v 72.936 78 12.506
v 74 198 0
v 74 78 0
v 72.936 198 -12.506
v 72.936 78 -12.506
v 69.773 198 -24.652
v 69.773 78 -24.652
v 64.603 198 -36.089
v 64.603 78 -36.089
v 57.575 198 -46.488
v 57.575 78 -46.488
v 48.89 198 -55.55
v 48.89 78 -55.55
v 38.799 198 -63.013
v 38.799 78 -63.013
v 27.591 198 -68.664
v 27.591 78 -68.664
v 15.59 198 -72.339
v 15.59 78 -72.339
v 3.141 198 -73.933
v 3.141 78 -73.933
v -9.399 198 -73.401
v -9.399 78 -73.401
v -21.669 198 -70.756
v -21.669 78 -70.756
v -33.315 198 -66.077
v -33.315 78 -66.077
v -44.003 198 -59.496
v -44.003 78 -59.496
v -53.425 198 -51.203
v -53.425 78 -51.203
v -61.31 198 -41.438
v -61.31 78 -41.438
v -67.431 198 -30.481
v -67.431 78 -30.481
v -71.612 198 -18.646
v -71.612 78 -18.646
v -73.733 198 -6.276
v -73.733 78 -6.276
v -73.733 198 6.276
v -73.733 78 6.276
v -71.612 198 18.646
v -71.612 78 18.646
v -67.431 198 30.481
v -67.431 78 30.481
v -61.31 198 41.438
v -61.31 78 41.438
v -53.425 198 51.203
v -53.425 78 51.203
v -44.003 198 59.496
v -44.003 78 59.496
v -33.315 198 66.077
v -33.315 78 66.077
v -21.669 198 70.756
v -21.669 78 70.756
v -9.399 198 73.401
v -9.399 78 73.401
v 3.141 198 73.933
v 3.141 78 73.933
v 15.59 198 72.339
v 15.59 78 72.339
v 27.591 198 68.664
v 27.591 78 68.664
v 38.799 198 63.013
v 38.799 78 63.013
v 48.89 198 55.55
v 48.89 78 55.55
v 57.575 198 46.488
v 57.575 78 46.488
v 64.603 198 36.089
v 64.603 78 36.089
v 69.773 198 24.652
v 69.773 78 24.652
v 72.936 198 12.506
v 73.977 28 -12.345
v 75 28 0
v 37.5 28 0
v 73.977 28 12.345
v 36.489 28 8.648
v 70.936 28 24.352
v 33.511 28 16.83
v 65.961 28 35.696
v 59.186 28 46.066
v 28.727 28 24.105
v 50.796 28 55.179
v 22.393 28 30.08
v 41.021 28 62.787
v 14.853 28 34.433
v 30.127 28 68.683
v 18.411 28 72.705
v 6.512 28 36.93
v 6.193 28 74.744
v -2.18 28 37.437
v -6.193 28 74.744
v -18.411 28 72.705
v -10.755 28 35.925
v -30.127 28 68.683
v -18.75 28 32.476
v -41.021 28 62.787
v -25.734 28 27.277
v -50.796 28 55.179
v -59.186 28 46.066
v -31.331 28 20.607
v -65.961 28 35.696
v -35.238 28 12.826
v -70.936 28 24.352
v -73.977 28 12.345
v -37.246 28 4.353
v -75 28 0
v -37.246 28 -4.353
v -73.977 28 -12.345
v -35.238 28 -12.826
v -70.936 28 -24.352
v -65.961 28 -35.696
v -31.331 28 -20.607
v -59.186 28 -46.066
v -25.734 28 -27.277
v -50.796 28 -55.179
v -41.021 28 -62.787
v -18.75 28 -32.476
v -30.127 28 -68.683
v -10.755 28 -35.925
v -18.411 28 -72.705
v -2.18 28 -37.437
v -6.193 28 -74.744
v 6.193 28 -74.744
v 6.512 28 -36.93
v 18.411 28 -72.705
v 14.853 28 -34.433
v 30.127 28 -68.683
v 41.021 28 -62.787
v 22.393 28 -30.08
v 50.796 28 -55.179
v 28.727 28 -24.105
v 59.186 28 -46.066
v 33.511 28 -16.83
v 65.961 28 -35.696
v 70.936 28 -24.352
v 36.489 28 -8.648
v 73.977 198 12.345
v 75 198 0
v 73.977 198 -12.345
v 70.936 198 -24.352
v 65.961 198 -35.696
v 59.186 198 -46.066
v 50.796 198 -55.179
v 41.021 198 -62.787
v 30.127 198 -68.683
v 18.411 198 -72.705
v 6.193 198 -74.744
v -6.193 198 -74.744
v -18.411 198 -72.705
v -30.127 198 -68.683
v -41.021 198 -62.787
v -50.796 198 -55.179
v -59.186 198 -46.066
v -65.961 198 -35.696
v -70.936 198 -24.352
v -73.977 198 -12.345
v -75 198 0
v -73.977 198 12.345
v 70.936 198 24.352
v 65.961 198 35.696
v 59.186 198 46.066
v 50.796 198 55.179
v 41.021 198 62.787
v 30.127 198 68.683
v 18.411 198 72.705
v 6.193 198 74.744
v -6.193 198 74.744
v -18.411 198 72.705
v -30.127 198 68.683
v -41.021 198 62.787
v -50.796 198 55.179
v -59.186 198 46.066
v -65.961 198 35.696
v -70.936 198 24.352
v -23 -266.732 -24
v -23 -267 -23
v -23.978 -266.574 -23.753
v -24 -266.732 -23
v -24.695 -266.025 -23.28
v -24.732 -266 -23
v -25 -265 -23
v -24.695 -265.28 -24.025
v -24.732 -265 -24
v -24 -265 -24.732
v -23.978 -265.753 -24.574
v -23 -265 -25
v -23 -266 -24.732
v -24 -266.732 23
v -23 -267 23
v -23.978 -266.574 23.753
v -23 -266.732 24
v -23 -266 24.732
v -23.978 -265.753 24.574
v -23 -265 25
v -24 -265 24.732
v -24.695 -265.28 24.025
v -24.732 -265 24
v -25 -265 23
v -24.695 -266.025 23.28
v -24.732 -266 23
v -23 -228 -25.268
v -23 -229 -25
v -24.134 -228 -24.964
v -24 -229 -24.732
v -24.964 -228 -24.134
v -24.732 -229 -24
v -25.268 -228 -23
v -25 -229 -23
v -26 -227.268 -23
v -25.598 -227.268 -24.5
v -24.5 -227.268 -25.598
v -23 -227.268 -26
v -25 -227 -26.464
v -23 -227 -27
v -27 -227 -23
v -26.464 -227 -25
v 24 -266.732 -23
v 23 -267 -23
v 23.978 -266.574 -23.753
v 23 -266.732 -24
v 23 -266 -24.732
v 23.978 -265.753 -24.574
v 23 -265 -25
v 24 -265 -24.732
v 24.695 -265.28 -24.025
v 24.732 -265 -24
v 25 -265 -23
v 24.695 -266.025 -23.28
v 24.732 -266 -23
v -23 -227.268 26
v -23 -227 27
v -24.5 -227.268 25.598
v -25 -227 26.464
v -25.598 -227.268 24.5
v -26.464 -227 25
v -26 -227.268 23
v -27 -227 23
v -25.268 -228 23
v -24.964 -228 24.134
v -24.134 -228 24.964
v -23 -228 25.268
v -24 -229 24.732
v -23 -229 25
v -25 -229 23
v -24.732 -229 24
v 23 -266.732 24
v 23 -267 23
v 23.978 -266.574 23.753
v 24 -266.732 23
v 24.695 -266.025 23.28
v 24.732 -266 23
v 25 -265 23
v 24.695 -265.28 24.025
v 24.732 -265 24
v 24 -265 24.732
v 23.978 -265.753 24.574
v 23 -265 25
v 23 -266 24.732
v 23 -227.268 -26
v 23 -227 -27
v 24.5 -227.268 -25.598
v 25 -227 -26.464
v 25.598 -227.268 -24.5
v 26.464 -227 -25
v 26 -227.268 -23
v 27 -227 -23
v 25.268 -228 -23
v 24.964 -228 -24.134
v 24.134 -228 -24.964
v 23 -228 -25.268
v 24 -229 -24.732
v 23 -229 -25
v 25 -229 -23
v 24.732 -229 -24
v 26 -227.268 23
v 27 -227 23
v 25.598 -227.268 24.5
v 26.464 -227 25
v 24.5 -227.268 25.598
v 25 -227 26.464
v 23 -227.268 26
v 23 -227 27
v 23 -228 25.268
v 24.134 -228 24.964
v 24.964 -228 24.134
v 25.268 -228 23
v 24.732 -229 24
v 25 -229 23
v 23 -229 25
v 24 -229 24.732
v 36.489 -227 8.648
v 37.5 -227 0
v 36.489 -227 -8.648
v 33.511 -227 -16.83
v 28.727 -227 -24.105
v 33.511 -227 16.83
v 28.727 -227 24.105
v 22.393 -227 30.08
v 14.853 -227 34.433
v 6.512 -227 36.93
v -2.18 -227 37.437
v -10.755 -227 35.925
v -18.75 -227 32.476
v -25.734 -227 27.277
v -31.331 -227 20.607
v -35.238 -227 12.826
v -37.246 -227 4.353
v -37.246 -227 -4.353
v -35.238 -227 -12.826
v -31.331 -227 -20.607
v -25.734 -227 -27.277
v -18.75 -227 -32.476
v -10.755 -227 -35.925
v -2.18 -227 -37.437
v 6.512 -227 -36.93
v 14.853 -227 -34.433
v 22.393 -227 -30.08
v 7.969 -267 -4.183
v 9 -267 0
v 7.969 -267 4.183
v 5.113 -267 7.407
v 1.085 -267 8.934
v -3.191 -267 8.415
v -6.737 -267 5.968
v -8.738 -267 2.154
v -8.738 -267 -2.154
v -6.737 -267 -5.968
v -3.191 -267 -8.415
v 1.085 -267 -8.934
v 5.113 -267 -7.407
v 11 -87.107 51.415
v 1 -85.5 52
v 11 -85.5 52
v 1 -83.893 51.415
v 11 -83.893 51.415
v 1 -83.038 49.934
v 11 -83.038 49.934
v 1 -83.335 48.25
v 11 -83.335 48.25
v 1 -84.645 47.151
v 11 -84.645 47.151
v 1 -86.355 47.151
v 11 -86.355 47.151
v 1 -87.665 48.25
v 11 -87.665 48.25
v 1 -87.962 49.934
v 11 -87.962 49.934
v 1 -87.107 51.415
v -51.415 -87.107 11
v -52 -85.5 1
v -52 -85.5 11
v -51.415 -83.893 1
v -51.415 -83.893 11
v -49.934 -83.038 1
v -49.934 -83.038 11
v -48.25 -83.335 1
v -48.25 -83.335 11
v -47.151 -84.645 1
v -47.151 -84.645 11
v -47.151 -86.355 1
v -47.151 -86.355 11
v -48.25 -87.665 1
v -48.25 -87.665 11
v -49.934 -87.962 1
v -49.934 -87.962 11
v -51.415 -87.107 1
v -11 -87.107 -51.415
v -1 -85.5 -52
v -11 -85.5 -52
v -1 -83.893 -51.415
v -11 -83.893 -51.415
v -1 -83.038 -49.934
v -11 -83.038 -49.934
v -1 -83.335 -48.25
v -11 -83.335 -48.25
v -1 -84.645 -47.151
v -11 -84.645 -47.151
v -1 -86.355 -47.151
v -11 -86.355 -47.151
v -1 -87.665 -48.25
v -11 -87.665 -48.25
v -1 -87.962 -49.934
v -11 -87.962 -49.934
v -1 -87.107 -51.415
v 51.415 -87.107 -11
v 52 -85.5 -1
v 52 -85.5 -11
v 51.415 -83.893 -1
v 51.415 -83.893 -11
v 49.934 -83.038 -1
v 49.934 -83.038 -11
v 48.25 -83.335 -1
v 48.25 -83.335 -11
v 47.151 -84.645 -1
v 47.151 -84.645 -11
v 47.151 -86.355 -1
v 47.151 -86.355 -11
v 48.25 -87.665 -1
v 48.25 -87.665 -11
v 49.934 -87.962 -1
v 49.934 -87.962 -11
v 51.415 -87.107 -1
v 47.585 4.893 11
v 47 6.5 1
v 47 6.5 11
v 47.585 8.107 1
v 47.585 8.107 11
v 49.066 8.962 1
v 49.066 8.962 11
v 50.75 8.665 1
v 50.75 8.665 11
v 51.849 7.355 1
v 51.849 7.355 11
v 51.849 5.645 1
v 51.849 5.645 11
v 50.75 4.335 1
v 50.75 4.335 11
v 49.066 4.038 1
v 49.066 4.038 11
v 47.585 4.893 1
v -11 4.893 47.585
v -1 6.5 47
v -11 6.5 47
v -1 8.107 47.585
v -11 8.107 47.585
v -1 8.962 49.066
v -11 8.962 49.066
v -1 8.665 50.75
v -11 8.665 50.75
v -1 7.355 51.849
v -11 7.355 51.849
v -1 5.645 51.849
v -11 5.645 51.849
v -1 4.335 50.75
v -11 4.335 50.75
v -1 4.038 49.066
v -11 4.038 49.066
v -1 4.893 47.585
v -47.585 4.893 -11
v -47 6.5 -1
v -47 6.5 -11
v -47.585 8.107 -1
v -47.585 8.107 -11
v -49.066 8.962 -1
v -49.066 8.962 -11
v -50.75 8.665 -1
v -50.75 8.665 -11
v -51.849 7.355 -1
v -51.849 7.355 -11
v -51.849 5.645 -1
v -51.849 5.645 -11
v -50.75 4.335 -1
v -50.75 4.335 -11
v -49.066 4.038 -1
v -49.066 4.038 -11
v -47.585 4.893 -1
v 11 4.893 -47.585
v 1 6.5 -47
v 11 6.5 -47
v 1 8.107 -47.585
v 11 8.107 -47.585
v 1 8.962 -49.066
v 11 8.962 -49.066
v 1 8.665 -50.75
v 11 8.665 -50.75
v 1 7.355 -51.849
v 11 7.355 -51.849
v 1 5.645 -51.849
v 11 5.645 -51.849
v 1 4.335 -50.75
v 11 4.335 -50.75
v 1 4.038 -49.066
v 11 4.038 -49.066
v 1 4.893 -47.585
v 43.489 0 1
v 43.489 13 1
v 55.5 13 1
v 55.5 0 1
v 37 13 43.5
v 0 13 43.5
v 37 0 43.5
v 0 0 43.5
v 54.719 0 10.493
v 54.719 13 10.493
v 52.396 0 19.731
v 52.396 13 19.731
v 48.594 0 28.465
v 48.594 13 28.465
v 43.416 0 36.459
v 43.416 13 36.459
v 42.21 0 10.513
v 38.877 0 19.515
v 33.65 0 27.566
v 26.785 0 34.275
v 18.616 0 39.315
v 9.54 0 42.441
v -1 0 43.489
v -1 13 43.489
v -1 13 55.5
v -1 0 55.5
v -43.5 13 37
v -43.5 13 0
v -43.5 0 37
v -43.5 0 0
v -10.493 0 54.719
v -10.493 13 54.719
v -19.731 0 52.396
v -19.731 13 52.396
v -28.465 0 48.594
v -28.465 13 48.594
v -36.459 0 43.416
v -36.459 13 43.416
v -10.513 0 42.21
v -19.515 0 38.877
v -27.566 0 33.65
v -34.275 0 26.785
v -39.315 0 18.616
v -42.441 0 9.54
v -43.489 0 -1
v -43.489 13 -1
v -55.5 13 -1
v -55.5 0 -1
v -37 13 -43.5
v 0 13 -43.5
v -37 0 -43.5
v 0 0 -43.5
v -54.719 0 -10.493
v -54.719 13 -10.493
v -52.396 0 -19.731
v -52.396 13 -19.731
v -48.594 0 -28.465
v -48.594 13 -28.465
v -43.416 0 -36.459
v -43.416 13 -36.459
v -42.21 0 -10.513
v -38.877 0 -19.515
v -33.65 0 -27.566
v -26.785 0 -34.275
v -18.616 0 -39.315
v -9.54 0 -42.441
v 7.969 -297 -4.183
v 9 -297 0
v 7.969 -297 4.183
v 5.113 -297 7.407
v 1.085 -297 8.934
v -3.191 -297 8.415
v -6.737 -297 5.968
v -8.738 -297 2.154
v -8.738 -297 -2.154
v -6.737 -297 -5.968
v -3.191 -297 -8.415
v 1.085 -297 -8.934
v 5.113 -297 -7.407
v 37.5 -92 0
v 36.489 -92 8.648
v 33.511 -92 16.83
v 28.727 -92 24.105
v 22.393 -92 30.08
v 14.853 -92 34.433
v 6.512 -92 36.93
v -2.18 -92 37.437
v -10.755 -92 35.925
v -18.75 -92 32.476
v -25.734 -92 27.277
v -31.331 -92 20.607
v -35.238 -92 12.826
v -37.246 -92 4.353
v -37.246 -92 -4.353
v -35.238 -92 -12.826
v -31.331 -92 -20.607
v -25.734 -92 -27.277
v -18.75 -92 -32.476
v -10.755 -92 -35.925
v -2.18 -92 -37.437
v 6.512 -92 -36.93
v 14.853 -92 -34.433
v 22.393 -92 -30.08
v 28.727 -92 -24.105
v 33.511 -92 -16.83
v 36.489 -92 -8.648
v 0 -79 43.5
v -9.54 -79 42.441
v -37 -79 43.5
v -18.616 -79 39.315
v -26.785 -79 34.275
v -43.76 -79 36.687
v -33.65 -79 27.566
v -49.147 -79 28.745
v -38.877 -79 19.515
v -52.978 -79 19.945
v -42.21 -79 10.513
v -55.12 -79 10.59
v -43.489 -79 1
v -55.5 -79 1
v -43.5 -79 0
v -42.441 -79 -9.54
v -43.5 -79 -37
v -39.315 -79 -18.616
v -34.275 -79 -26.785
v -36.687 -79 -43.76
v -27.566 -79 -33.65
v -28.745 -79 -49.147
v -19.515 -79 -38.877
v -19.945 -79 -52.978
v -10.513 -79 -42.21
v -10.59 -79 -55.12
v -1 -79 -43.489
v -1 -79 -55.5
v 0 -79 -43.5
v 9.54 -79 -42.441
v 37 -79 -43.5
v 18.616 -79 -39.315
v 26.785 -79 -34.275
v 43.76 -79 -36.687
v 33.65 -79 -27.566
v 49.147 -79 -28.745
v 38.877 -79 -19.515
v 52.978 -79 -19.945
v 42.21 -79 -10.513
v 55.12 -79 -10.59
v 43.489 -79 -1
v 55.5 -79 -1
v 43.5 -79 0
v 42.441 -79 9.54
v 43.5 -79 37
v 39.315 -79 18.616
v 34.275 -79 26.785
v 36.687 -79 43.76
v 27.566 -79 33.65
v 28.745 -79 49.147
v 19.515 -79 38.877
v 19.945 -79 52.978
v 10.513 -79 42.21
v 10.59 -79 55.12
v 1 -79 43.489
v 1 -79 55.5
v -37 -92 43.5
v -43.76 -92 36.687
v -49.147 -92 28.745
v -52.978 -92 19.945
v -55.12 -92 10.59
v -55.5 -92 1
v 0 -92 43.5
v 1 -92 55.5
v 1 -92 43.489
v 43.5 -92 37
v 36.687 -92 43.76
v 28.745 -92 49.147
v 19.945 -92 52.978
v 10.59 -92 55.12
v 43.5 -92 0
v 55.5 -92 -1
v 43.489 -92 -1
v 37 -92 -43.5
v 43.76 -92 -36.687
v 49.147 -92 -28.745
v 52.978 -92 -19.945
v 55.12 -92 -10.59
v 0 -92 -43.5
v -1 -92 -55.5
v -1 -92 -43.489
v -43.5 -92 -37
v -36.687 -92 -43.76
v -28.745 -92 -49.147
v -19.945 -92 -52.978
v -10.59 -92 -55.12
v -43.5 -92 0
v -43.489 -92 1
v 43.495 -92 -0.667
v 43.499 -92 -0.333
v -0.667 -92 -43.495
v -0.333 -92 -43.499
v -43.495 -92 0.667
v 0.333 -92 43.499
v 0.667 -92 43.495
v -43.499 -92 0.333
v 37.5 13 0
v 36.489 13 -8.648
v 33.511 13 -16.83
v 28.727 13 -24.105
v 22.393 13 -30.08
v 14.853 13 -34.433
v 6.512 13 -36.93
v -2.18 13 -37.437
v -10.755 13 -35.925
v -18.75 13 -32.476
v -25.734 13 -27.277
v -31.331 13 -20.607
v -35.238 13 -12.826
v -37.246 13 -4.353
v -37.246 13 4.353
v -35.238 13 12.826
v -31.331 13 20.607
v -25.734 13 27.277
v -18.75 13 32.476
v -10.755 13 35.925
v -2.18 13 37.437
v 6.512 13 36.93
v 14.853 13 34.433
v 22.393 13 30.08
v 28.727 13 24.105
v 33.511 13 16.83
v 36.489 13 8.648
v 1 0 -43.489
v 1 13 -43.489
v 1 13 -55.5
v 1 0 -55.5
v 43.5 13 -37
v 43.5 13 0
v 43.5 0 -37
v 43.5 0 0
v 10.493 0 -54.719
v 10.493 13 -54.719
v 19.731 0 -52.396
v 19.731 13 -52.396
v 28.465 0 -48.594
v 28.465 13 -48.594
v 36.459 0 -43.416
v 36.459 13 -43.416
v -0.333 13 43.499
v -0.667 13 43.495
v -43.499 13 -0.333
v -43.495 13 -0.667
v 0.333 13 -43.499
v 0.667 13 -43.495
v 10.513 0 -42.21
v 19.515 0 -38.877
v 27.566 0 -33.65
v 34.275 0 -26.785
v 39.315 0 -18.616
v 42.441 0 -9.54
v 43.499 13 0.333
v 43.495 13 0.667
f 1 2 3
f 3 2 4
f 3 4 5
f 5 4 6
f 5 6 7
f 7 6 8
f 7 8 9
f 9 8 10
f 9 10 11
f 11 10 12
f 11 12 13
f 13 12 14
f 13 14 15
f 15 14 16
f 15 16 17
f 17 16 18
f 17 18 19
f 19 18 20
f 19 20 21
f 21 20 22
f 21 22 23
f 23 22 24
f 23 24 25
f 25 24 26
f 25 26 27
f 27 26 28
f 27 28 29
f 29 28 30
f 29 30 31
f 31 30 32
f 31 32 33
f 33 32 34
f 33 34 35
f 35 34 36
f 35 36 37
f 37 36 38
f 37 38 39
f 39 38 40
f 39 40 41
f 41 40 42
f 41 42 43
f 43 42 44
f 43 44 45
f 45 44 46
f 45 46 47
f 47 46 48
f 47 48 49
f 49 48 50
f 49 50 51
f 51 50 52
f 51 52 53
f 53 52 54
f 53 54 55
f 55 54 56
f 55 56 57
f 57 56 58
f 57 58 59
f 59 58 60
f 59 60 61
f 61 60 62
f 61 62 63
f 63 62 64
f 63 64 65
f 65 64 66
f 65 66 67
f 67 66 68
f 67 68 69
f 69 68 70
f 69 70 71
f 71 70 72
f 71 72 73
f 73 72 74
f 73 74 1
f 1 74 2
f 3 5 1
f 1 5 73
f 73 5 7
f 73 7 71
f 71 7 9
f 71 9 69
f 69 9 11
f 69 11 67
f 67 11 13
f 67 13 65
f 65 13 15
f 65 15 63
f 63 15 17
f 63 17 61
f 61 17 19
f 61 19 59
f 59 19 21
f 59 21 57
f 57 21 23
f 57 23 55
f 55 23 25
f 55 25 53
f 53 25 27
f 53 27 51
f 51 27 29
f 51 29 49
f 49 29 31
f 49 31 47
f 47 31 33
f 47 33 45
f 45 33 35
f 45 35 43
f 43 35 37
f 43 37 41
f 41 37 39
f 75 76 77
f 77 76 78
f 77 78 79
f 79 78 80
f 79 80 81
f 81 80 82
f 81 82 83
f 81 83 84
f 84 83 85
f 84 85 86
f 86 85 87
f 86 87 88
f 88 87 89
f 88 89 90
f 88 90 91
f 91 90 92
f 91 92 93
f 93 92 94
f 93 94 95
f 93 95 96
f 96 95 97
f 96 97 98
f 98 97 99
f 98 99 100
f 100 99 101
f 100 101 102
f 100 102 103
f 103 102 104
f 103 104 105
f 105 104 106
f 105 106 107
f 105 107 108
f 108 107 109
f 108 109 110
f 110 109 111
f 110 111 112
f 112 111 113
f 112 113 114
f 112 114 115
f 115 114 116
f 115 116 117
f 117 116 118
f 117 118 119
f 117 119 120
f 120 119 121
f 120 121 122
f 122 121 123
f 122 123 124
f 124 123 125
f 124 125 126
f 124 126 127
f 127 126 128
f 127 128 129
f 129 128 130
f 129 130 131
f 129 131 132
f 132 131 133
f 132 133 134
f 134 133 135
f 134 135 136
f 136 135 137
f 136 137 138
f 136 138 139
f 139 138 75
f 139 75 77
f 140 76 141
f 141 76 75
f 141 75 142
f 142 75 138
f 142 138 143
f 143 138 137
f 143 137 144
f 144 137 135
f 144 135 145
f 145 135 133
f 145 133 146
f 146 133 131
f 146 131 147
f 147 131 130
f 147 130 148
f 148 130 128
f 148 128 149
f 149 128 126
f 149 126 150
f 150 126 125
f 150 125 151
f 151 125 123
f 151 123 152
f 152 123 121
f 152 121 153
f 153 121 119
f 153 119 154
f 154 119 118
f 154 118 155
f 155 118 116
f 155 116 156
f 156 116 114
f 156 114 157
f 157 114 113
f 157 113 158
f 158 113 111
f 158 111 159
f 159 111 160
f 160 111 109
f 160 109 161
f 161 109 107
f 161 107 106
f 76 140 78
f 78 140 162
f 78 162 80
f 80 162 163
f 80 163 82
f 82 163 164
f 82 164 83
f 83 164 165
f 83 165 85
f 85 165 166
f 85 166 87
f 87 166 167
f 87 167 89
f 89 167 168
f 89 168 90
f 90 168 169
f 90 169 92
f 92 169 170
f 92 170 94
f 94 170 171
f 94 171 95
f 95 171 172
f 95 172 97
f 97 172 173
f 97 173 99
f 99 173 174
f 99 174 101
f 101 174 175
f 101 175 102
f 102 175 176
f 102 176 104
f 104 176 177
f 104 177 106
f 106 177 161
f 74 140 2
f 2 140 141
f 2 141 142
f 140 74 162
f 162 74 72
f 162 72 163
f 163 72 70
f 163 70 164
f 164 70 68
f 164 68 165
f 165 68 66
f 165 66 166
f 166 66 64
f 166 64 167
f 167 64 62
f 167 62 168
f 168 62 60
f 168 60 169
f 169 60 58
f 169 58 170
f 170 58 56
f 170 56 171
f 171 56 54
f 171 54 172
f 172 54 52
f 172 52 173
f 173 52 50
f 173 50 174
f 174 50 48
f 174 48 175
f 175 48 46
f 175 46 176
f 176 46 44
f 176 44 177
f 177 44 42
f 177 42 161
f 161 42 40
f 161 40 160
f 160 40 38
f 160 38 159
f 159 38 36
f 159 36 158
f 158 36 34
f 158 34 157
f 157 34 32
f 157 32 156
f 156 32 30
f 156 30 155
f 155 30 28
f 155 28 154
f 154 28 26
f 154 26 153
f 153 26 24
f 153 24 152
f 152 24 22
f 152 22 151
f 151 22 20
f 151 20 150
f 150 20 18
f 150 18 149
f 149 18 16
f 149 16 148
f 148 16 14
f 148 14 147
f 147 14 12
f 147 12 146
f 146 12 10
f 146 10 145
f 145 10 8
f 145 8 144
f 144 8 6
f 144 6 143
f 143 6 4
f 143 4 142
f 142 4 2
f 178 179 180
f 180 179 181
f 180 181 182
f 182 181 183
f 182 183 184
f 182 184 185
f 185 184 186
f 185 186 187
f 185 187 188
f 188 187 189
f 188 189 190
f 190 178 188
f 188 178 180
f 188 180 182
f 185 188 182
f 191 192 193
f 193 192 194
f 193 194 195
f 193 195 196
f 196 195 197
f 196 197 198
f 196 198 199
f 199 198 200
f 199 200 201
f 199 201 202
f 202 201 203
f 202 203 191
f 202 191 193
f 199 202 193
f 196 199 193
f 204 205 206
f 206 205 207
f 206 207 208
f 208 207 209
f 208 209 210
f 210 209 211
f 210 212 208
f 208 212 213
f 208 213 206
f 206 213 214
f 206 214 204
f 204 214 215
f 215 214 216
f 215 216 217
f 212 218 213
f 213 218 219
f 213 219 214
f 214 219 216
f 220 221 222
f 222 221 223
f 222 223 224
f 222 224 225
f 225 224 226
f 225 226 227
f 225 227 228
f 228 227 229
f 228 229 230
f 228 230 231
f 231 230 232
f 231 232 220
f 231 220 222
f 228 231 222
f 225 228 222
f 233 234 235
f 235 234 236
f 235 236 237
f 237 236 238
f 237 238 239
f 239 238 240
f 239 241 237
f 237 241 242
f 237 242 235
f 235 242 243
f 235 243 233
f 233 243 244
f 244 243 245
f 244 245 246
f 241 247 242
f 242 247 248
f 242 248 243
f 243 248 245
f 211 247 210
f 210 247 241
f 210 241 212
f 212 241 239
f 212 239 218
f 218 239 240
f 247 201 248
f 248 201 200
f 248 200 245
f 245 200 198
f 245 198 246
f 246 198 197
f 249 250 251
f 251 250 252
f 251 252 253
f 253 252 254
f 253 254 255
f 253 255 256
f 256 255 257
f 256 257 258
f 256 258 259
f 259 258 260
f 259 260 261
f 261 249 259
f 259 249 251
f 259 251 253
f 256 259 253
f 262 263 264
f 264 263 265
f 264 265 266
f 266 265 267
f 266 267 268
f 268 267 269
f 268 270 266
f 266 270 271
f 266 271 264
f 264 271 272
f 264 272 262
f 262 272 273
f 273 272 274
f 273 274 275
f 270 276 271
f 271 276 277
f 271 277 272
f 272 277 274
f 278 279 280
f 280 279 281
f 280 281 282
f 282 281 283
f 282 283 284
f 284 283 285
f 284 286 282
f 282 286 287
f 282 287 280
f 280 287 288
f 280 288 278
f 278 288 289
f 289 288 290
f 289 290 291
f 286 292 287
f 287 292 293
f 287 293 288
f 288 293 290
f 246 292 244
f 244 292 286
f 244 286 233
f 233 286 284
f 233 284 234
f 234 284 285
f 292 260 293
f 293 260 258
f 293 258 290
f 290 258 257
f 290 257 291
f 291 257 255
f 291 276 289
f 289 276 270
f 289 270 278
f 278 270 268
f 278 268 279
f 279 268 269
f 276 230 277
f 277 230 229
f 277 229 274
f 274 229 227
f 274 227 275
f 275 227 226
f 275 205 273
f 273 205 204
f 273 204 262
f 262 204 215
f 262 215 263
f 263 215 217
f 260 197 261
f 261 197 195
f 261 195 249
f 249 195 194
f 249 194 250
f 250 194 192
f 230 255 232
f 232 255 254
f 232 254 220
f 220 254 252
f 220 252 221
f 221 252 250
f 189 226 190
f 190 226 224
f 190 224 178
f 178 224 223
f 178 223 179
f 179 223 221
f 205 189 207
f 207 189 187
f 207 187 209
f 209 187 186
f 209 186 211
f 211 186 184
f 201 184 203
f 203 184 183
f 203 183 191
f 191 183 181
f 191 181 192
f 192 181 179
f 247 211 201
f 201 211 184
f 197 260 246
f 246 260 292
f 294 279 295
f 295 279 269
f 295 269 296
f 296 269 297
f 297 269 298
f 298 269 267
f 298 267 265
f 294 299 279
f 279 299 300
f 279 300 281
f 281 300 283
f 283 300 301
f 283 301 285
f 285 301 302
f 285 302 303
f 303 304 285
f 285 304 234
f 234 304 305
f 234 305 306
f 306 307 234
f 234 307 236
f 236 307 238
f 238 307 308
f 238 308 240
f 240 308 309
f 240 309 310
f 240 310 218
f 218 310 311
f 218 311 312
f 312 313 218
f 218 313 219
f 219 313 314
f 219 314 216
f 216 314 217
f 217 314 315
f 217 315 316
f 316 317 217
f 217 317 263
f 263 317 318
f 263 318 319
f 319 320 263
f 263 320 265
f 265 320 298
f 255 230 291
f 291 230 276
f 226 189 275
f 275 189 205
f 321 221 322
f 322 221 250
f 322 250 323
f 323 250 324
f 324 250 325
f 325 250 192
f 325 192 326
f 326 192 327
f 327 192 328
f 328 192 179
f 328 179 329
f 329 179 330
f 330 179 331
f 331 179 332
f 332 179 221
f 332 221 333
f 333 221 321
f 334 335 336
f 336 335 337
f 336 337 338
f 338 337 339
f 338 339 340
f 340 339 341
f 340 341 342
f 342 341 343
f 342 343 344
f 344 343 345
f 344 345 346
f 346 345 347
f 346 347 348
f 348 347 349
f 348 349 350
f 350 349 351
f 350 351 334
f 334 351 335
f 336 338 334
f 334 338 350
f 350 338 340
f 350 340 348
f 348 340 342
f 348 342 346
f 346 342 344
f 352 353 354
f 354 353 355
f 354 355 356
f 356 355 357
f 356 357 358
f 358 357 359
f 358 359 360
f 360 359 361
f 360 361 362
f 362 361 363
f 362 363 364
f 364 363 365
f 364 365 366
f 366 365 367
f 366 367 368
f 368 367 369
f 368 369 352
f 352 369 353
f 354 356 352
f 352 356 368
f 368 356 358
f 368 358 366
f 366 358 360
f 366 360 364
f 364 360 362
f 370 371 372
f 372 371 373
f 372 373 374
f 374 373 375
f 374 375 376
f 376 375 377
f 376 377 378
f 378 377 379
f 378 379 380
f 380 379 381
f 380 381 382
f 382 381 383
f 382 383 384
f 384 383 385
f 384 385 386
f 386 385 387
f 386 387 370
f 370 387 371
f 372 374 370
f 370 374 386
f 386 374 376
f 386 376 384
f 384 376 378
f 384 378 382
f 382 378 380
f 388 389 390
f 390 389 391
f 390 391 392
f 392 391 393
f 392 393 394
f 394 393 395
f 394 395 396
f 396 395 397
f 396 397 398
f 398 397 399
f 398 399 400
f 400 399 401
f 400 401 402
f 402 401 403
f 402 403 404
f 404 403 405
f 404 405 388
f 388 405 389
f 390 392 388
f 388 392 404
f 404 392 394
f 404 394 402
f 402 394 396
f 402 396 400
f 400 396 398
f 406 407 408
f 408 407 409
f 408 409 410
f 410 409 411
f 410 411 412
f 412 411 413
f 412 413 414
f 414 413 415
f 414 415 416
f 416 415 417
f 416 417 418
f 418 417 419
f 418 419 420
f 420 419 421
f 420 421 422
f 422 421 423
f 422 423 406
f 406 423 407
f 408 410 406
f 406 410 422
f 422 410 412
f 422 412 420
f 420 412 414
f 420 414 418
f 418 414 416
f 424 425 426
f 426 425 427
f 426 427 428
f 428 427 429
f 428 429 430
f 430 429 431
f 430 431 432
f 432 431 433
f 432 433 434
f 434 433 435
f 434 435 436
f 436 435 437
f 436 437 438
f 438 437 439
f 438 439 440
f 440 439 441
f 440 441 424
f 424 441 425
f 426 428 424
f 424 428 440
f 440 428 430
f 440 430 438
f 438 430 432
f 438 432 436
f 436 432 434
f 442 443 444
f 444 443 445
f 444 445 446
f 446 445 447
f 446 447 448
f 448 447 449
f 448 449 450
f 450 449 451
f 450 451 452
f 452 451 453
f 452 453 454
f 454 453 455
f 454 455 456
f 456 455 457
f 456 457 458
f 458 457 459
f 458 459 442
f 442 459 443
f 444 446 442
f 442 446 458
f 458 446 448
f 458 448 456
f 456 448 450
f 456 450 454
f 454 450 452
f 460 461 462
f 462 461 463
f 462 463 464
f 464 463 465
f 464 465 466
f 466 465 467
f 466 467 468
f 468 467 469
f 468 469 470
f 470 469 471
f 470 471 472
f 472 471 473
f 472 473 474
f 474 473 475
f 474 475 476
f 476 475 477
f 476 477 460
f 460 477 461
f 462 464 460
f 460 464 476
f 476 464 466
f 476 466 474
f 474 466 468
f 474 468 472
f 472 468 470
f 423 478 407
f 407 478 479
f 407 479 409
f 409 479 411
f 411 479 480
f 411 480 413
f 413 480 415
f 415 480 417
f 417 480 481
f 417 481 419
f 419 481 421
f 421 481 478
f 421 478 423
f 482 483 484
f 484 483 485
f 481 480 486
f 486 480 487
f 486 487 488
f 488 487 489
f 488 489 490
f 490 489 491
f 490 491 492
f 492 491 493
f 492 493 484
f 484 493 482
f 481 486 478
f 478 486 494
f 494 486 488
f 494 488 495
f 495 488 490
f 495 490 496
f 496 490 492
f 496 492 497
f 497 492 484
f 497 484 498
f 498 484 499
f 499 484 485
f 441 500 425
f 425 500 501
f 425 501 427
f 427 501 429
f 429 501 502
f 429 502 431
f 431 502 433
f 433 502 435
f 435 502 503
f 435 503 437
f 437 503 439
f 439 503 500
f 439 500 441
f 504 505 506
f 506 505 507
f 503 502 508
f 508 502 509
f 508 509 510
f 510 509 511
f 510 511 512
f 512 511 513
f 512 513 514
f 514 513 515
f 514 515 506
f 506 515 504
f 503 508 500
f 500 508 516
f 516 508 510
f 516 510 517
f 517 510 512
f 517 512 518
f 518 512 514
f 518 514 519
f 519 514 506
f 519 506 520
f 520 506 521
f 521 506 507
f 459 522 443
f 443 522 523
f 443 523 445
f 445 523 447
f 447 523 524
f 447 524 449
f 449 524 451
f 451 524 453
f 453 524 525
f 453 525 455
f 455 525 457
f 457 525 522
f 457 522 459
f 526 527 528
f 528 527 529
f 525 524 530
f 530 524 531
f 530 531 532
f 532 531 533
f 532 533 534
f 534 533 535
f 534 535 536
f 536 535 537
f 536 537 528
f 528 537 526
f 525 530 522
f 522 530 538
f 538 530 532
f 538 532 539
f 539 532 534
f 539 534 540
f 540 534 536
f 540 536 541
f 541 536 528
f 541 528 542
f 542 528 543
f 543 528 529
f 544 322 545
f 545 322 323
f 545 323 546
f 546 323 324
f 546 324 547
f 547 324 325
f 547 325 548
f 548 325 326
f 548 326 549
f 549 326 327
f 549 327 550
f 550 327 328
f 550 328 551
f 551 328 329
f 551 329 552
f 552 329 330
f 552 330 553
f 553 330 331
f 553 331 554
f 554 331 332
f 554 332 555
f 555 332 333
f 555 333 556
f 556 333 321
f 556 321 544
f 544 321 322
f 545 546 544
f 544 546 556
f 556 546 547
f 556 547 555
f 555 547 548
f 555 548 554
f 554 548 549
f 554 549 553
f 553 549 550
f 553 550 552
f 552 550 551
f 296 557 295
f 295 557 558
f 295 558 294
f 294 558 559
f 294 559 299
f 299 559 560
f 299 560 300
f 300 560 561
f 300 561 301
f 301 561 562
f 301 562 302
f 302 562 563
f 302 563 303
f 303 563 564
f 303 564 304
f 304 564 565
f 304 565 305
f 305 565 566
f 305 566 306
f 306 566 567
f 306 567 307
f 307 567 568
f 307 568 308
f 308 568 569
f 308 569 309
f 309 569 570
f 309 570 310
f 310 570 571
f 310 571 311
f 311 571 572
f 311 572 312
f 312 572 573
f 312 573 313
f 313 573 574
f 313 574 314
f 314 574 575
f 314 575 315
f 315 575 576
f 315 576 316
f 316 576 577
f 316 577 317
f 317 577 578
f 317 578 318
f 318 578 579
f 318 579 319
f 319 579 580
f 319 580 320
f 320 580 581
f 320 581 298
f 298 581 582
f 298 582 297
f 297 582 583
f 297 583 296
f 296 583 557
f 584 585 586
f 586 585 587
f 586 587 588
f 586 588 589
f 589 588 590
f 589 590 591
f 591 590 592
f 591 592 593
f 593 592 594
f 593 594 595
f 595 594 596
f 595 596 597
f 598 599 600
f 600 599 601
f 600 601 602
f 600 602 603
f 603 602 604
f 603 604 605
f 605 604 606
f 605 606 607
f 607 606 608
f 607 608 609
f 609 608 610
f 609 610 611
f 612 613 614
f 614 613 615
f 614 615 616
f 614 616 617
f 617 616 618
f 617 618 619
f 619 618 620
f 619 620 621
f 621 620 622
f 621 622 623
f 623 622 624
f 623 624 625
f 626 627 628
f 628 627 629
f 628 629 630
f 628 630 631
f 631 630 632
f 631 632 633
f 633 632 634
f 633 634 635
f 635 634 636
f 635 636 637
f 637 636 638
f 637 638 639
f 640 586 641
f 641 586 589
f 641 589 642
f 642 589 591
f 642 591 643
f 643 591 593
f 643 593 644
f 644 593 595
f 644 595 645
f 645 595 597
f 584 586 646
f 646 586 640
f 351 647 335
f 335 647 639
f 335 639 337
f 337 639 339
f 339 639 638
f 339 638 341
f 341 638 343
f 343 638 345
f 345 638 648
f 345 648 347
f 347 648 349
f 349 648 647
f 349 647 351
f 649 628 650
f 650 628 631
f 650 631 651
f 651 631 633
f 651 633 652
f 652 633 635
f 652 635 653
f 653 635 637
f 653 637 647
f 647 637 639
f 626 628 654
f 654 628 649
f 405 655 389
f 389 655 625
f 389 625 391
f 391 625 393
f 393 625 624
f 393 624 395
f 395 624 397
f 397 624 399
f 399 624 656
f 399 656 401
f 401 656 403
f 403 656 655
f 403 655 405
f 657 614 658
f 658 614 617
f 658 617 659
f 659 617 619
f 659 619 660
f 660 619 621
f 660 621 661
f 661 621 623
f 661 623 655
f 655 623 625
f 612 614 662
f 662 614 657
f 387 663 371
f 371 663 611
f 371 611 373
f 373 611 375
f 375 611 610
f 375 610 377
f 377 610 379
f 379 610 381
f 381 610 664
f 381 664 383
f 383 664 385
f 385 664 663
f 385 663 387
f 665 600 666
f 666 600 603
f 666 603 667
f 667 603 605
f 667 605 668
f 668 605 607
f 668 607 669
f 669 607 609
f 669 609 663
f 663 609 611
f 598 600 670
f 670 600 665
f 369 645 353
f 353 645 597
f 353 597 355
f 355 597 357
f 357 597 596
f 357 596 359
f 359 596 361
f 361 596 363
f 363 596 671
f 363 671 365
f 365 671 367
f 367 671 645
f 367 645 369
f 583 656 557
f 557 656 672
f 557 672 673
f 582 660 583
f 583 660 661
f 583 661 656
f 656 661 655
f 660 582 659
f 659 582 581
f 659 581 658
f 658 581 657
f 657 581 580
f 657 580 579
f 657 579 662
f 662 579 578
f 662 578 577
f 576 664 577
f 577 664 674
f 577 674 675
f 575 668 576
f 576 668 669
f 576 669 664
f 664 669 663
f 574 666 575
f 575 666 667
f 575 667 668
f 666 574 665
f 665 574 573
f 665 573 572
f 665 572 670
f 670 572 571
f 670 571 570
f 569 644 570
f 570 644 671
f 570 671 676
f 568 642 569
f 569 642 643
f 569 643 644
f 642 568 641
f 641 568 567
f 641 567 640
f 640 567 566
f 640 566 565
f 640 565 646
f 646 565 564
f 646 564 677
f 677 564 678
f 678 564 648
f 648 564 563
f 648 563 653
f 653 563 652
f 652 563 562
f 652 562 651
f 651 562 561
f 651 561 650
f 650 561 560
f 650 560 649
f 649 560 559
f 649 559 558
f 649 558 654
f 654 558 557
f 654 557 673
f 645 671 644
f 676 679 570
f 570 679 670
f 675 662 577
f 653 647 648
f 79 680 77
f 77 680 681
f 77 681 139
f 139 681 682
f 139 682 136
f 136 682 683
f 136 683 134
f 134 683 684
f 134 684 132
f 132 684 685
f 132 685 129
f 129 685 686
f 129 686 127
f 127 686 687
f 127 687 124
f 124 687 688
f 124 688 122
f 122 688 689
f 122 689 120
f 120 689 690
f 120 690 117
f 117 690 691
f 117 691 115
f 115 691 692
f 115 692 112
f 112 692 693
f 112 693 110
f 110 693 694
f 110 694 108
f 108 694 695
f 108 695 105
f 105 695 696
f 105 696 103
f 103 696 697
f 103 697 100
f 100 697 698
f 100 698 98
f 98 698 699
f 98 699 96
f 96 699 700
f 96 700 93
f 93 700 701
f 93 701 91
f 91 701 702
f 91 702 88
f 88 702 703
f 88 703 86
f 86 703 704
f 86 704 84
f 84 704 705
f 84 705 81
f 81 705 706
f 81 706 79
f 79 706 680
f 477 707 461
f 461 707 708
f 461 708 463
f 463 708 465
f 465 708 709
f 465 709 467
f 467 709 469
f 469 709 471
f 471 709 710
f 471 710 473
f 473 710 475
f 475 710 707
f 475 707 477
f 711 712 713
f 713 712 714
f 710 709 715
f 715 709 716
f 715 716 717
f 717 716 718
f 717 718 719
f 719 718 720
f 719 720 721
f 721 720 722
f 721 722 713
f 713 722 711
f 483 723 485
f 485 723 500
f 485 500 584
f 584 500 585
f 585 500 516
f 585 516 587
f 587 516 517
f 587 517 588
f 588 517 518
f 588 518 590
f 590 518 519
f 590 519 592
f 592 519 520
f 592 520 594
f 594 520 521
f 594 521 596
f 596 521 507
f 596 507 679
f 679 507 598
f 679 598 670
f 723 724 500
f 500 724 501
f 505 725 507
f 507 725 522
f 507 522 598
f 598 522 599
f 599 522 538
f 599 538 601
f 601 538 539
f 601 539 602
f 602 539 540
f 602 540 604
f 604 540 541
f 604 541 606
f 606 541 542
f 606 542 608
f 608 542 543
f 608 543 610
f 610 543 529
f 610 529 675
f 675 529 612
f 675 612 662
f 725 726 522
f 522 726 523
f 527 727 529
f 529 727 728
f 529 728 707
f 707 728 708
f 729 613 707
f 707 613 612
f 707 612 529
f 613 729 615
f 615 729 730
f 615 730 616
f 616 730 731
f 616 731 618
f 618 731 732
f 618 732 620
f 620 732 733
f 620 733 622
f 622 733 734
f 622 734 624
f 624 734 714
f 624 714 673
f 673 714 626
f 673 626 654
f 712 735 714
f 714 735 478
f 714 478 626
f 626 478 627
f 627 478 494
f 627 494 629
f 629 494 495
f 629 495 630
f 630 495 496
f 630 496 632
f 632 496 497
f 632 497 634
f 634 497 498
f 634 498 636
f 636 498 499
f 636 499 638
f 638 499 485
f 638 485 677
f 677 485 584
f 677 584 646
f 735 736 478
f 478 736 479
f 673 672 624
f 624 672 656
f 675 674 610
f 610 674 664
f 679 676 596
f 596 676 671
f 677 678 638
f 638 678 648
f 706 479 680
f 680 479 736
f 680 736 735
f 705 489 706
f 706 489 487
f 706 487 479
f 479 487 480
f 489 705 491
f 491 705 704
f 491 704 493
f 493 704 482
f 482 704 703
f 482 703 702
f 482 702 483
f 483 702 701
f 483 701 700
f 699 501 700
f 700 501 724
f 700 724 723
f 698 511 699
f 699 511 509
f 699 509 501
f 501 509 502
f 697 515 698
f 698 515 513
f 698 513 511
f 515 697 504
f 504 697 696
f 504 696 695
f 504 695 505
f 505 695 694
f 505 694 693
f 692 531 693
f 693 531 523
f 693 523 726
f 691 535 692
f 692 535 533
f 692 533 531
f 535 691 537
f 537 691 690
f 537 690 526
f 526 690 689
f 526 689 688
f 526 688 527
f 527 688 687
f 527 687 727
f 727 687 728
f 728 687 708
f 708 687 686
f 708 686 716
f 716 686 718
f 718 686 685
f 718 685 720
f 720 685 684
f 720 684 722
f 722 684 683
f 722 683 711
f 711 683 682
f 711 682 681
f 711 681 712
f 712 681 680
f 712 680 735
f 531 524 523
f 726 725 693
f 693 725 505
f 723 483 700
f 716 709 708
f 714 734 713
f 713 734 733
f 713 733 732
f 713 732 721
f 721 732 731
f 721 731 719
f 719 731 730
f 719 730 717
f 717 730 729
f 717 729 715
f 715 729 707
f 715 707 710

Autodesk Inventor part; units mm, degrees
ref_plane "YZ Plane" through (0, 0, 0) normal (1, 0, 0) x (0, 1, 0)
ref_plane "XZ Plane" through (0, 0, 0) normal (0, 1, 0) x (-1, 0, 0)
ref_plane "XY Plane" through (0, 0, 0) normal (0, 0, 1) x (1, 0, 0)
sketch "Sketch1" plane through (0, 0, 0) normal (0, 1, 0) x (-1, 0, 0)
  circle A0 centre (0, 0) radius 43.5
  dimension "d0" = 87
extrude "Extrusion1" add sketch "Sketch1" along normal blind 13
sketch "Sketch2" plane through (0, 13, 0) normal (0, 1, 0) x (1, 0, 0)
  circle A0 centre (0, 0) radius 43.5 projected
  line L0 (0, 55.4914) -> (0, 55.5)
  circle A1 centre (0, 0) radius 43.5 projected
  line L1 (43.5, 0) -> (43.5, 37)
  line L2 (0, 55.5) -> (1, 55.5)
  line L3 (1, 55.5) -> (1, 43.5)
  line L4 (0, 55.4914) -> (0, 55.5)
  arc A2 (43.5, 37) -> (1, 55.5) centre (1, -2.5676) ccw
  line L5 (1, 43.4885) -> (1, 43.5)
  line L6 (-55.5, 1) -> (-43.5, 1)
  arc A3 (-37, 43.5) -> (-55.5, 1) centre (2.5676, 1) ccw
  line L7 (0, 43.5) -> (-37, 43.5)
  line L8 (-1, -55.5) -> (-1, -43.5)
  arc A4 (-43.5, -37) -> (-1, -55.5) centre (-1, 2.5676) ccw
  line L9 (-43.5, 0) -> (-43.5, -37)
  line L10 (55.5, -1) -> (43.5, -1)
  arc A5 (37, -43.5) -> (55.5, -1) centre (-2.5676, -1) ccw
  line L11 (0, -43.5) -> (37, -43.5)
  point P0 (0, 43.5)
  point P1 (43.5, 0)
  point P2 (-55.4914, 0)
  point P3 (0, -55.4914)
  point P4 (55.4914, 0)
  dimension "d3" = 12
  dimension "d75" = 1
  dimension "d91" = 37
  dimension "d92" = 58.0676
  dimension "d93" = 42.5
  dimension "d94" = 0
  dimension "d95" = 87.5
  dimension "d110" = 360
extrude "Extrusion2" add sketch "Sketch2" against normal blind 13 contours A0 L5 L3 A2 L1
sketch "Sketch6" plane through (0, 0, 0) normal (0, -1, 0) x (1, 0, 0)
  circle A0 centre (0, 0) radius 43.5
  point P0 (0, 43.5)
sketch "Sketch17" plane through (0, 13, 0) normal (0, 1, 0) x (1, 0, 0)
  circle A0 centre (0, 0) radius 25
  dimension "d141" = 50
extrude "Extrusion16" add sketch "Sketch17" along normal blind 2
sketch "Sketch7" plane through (0, 13, 0) normal (0, 1, 0) x (1, 0, 0)
  circle A0 centre (0, 0) radius 37.5
  dimension "d23" = 75
extrude "Extrusion5" add sketch "Sketch7" along normal blind 15
extrude "Extrusion6" add sketch "Sketch6" along normal blind 79
sketch "Sketch8" plane through (0, -79, 0) normal (0, -1, 0) x (1, 0, 0)
  line L0 (0, -43.5) -> (0, -55.5) projected
  line L1 (0, -43.4937) -> (0, -55.5)
  line L2 (43.4937, 0) -> (55.5, 0)
  line L3 (0, 43.4937) -> (0, 55.5)
  line L4 (-43.4937, 0) -> (-55.5, 0)
  line L5 (-55.5, -2) -> (-43.5, -2)
  circle A0 centre (0, 0) radius 43.5
  line L6 (-43.5, 0) -> (-55.5, 0) projected
  line L7 (-55.5, 0) -> (-55.5, -2)
  line L8 (-43.5, 0) -> (-43.5, -37)
  circle A1 centre (0, 0) radius 43.5 projected
  line L9 (-55.5, 0) -> (-55.5, 1)
  line L10 (-55.5, 1) -> (-43.4885, 1)
  line L11 (0, -43.5) -> (37, -43.5)
  line L12 (-1, -55.5) -> (-1, -43.4885)
  line L13 (2, -55.5) -> (2, -43.5)
  line L14 (0, -55.5) -> (2, -55.5)
  line L15 (0, -55.5) -> (-1, -55.5)
  circle A2 centre (0, 0) radius 43.5
  line L16 (43.5, 0) -> (43.5, 37)
  line L17 (55.5, -1) -> (43.4885, -1)
  line L18 (55.5, 2) -> (43.5, 2)
  line L19 (55.5, 0) -> (55.5, 2)
  line L20 (55.5, 0) -> (55.5, -1)
  circle A3 centre (0, 0) radius 43.5
  line L21 (0, 43.5) -> (-37, 43.5)
  line L22 (1, 55.5) -> (1, 43.4885)
  line L23 (-2, 55.5) -> (-2, 43.5)
  line L24 (0, 55.5) -> (-2, 55.5)
  line L25 (0, 55.5) -> (1, 55.5)
  circle A4 centre (0, 0) radius 43.5
  line L26 (-2, -43.5) -> (-37, -43.5) projected
  arc A5 (-43.5, -37) -> (-1, -55.5) centre (-3.75, -3.75) ccw
  arc A6 (37, -43.5) -> (55.5, -1) centre (3.75, -3.75) ccw
  line L27 (0, -43.5) -> (37, -43.5)
  line L28 (2, -55.5) -> (2, -43.5)
  line L29 (-1, -55.5) -> (-1, -43.4885)
  line L30 (0, -55.5) -> (2, -55.5)
  arc A7 (43.5, 37) -> (1, 55.5) centre (3.75, 3.75) ccw
  line L31 (43.5, 0) -> (43.5, 37)
  line L32 (55.5, 2) -> (43.5, 2)
  line L33 (55.5, -1) -> (43.4885, -1)
  line L34 (55.5, 0) -> (55.5, 2)
  arc A8 (-37, 43.5) -> (-55.5, 1) centre (-3.75, 3.75) ccw
  line L35 (0, 43.5) -> (-37, 43.5)
  line L36 (-2, 55.5) -> (-2, 43.5)
  line L37 (1, 55.5) -> (1, 43.4885)
  line L38 (0, 55.5) -> (-2, 55.5)
  line L39 (-43.5, -37) -> (0, -37)
  line L40 (0, -37) -> (0, -55.5)
  point P0 (43.5, 0)
  point P1 (0, 43.5)
  point P2 (-43.5, 0)
  point P3 (43.5, -37)
  point P4 (37, 43.5)
  point P5 (-43.5, 37)
  point P6 (43.5, 0)
  point P7 (0, 43.5)
  point P8 (-43.5, 0)
  dimension "d30" = 360
  dimension "d32" = 2
  dimension "d33" = 12
  dimension "d52" = 35
  dimension "d60" = 1
  dimension "d67" = 360
  dimension "d71" = 360
  dimension "d137" = 51.823
  dimension "d138" = 3.75
  dimension "d139" = 43.5
  dimension "d140" = 18.5
extrude "Extrusion7" add sketch "Sketch8" along normal blind 13 contours A0 L39 L40 L1 | L1 L40 L39 A0 | A0 L17 A6 L11 | L12 A5 L39 A0 | L39 L8 A0 | A0 L22 A7 L16 | L10 A8 L21 A0
sketch "Sketch9" plane through (0, -92, 0) normal (0, -1, 0) x (1, 0, 0)
  circle A0 centre (0, 0) radius 37.5
extrude "Extrusion8" add sketch "Sketch9" along normal blind 135
sketch "Sketch10" plane through (0, -227, 0) normal (0, -1, 0) x (1, 0, 0)
  line L0 (-25, 25) -> (25, 25)
  line L1 (25, 25) -> (25, -25)
  line L2 (25, -25) -> (-25, -25)
  line L3 (-25, -25) -> (-25, 25)
  point P0 (0, 0)
  point P1 (0, -25)
  dimension "d43" = 25
  dimension "d44" = 50
  dimension "d45" = 50
  dimension "d46" = 25
extrude "Extrusion9" add sketch "Sketch10" along normal blind 40
sketch "Sketch11" plane through (0, -267, 0) normal (0, -1, 0) x (1, 0, 0)
  circle A0 centre (0, 0) radius 9
  dimension "d49" = 18
extrude "Extrusion10" add sketch "Sketch11" along normal blind 30
pattern_circular "Circular Pattern1" count 4 over 360 about axis through (0, -10, 0) along (0, 1, 0) of "Extrusion2"
sketch "Sketch13" plane through (1, 13, -55.5) normal (-1, 0, 0) x (0, 0, 1)
  line L0 (0, 0) -> (0, -13) projected
  line L1 (0, -6.5) -> (12, -6.5)
  line L2 (12, -13) -> (12, 0) projected
  circle A0 centre (6, -6.5) radius 2.5
  point P0 (55.5, -13)
extrude "Extrusion12" cut sketch "Sketch13" against normal blind 10
pattern_circular "Circular Pattern2" count 4 over 360 about axis through (0, -10, 0) along (0, 1, 0) of "Extrusion12"
sketch "Sketch14" plane through (43.4885, -79, -1) normal (0, 0, 1) x (1, 0, 0)
  line L0 (12.0115, -13) -> (0, -13) projected
  line L1 (12.0115, 0) -> (0, 0) projected
  circle A0 centre (6.0115, -6.5) radius 2.5
  line L2 (0.0115, 0) -> (0.0115, -13) projected
  point P0 (-43.4885, 79)
  point P1 (6.0057, -13)
  point P2 (0.0115, -6.5)
  dimension "d120" = 5
  dimension "d128" = 6.5
  dimension "d129" = 6
extrude "Extrusion13" cut sketch "Sketch14" against normal blind 10
pattern_circular "Circular Pattern3" count 4 over 360 about axis through (0, -10, 0) along (0, 1, 0) of "Extrusion13"
fillet "Fillet1" radius 2 12 edges at (25, -227, 0) (25, -247, 25) (25, -267, 0) (25, -247, -25) (0, -267, -25) (0, -267, 25) (-25, -267, 0) (0, -227, -25) (-25, -247, -25) (-25, -227, 0) (-25, -247, 25) (0, -227, 25)
sketch "Sketch15" plane through (0, 28, 0) normal (0, 1, 0) x (1, 0, 0)
  circle A0 centre (0, 0) radius 75
  dimension "d131" = 150
extrude "Extrusion14" add sketch "Sketch15" along normal blind 170
sketch "Sketch16" plane through (0, 198, 0) normal (0, 1, 0) x (1, 0, 0)
  circle A0 centre (0, 0) radius 9 projected
  circle A1 centre (0, 0) radius 74
  dimension "d134" = 148
extrude "Extrusion15" cut sketch "Sketch16" against normal blind 120 contours A0 | A1
properties part number "Carbon_Fibre" material "Steel"
